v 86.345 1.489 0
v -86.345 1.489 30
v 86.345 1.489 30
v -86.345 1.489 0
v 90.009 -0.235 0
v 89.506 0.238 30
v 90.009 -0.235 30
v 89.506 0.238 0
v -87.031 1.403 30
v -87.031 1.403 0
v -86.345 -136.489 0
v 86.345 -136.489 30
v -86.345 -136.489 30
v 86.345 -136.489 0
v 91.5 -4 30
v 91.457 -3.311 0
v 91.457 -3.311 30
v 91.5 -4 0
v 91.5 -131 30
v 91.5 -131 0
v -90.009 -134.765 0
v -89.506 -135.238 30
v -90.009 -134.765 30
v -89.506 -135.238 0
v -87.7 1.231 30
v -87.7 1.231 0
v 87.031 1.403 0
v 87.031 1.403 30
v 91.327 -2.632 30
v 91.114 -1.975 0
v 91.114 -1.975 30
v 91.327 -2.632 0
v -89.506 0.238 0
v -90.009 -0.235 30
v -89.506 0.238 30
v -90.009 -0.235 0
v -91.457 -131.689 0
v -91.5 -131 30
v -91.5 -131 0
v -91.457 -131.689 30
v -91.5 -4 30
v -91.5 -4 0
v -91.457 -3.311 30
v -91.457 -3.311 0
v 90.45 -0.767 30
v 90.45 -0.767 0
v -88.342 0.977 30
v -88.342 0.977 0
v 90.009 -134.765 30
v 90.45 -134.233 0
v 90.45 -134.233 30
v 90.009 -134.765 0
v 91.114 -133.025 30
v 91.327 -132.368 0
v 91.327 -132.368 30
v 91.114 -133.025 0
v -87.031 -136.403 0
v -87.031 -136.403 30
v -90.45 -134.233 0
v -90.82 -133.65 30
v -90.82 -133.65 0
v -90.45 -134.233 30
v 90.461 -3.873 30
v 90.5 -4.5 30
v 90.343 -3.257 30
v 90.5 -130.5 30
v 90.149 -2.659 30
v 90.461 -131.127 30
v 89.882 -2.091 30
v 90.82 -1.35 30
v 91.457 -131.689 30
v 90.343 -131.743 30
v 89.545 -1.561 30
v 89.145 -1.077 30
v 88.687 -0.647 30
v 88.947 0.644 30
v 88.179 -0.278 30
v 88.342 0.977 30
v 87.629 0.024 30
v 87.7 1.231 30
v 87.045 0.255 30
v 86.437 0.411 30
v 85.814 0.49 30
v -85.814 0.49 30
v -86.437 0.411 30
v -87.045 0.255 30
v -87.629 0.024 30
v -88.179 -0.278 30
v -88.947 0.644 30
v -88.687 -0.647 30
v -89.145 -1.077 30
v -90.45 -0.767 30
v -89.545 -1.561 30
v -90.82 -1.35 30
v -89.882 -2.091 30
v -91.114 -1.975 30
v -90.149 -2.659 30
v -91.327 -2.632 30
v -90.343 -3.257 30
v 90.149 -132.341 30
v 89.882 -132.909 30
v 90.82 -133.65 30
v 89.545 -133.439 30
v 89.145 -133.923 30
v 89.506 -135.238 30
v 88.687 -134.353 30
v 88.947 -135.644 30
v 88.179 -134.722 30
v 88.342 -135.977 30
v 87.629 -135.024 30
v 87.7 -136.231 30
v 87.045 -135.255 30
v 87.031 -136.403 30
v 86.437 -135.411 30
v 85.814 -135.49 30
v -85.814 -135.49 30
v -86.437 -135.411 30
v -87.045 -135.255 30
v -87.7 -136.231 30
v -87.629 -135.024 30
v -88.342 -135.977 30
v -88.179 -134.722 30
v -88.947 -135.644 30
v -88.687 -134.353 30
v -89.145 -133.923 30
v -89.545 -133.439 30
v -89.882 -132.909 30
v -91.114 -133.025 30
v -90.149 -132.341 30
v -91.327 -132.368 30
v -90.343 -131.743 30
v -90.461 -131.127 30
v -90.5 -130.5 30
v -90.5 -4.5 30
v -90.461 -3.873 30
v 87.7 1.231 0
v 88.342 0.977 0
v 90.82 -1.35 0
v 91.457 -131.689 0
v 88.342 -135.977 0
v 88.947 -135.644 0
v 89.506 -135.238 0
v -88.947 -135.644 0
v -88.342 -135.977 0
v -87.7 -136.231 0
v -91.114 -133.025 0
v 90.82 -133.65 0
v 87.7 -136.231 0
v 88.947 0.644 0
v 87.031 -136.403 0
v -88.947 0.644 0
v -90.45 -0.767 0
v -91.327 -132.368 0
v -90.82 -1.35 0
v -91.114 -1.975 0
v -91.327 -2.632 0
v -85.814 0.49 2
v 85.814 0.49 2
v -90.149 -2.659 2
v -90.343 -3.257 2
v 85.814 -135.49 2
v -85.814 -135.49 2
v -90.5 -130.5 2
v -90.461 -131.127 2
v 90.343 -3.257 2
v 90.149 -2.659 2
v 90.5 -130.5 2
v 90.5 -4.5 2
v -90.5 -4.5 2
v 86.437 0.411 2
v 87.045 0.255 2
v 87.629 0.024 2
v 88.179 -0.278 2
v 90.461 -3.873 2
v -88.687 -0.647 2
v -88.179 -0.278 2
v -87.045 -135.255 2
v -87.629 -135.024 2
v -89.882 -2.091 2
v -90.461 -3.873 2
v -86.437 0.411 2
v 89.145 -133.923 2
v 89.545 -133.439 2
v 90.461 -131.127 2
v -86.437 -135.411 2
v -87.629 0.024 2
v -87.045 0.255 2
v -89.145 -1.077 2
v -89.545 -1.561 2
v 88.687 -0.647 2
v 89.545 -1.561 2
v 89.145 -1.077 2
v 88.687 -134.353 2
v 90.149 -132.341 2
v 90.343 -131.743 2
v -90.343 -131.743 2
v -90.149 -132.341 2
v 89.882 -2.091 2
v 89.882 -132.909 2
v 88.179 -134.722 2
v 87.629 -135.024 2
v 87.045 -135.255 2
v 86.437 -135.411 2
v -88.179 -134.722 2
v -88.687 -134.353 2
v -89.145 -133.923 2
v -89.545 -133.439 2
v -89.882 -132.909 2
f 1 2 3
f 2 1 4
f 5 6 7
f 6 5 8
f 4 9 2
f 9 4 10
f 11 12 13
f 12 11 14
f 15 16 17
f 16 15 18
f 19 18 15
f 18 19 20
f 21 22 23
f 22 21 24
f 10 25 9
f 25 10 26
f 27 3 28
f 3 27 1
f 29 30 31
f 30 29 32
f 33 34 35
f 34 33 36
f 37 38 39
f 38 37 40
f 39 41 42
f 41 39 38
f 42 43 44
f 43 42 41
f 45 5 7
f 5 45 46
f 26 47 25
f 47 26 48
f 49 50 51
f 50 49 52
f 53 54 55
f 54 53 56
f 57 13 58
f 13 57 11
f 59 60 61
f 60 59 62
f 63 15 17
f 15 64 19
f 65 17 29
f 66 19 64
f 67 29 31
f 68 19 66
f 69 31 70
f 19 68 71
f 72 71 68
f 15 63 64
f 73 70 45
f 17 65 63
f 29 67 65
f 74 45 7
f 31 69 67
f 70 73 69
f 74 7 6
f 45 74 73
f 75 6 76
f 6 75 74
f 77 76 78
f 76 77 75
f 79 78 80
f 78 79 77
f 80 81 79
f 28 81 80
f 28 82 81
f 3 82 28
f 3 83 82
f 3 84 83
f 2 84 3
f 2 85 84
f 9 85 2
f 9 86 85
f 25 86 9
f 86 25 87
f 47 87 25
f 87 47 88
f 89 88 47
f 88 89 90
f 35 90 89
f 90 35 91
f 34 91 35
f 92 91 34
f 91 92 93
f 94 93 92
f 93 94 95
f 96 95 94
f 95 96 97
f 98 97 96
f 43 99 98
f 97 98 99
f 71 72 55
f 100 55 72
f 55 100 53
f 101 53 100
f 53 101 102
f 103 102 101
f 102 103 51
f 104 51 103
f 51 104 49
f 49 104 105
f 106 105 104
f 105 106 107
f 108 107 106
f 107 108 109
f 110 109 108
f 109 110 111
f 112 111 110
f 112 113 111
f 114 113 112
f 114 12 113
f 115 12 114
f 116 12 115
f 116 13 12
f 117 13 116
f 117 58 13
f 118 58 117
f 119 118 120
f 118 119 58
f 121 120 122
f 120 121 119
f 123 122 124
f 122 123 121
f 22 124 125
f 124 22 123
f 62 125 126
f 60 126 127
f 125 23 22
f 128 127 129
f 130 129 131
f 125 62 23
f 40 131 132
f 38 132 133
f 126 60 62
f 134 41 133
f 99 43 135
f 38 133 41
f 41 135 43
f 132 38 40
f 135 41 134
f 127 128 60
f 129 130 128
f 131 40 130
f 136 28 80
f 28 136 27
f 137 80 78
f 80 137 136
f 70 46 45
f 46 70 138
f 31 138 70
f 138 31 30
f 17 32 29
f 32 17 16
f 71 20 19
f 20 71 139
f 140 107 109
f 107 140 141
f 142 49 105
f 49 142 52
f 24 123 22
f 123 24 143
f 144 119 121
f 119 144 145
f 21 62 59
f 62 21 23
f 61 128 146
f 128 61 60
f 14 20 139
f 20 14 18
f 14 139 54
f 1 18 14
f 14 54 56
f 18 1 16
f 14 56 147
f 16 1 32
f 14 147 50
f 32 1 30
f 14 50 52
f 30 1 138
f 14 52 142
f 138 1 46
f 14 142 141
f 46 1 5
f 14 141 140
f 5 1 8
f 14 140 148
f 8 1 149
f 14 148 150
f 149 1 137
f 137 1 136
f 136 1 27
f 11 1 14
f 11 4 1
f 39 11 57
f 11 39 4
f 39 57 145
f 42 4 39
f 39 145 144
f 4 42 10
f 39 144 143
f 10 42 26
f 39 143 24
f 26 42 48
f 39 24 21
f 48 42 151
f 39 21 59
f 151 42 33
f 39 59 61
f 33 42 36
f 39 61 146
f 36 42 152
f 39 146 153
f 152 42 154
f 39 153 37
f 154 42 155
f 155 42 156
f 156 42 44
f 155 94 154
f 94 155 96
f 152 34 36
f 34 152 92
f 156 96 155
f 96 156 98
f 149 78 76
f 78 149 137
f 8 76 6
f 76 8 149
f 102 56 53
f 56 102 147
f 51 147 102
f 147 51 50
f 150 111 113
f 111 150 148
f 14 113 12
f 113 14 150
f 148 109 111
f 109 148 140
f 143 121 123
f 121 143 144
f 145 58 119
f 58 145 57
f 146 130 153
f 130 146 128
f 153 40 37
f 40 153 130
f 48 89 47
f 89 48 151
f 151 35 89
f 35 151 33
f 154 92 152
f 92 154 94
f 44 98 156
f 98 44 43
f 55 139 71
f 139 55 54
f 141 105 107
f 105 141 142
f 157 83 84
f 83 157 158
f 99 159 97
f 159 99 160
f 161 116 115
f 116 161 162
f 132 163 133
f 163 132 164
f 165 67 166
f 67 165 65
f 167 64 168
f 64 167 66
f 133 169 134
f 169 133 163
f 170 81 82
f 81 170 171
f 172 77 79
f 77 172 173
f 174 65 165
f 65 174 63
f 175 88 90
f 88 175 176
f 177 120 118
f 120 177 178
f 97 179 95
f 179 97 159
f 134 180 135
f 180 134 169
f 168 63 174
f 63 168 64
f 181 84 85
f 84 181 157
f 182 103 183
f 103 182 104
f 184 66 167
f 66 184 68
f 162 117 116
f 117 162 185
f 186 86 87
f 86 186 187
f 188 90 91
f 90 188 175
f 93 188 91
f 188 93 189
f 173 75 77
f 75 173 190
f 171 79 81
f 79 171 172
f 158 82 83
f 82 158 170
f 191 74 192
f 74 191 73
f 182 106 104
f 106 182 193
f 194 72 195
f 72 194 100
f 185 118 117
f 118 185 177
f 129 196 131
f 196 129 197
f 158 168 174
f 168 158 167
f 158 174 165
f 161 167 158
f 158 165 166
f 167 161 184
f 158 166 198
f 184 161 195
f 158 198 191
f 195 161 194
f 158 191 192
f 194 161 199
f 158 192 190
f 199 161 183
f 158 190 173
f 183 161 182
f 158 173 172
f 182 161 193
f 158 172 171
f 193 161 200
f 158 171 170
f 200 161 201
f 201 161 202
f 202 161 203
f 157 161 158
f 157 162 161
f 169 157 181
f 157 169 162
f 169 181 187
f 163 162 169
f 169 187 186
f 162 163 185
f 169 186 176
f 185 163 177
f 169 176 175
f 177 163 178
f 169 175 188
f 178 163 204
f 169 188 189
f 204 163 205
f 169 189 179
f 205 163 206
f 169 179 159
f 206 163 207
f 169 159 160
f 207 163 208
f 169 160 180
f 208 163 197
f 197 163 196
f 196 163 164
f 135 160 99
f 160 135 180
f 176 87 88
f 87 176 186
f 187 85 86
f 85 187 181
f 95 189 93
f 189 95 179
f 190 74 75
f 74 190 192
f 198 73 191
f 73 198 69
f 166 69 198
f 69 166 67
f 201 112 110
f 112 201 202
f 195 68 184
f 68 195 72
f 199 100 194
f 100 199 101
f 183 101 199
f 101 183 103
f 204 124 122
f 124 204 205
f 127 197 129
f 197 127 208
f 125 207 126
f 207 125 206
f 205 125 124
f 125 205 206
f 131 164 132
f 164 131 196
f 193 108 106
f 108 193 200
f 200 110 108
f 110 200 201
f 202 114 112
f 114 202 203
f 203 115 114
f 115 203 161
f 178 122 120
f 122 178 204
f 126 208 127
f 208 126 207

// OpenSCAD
$fn = 50;


difference() {
	union() {
		translate(v = [0, -67.5000000000, 0]) {
			hull() {
				translate(v = [-86.0000000000, 63.5000000000, 0]) {
					cylinder(h = 30, r = 5.5000000000);
				}
				translate(v = [86.0000000000, 63.5000000000, 0]) {
					cylinder(h = 30, r = 5.5000000000);
				}
				translate(v = [-86.0000000000, -63.5000000000, 0]) {
					cylinder(h = 30, r = 5.5000000000);
				}
				translate(v = [86.0000000000, -63.5000000000, 0]) {
					cylinder(h = 30, r = 5.5000000000);
				}
			}
		}
	}
	union() {
		translate(v = [0, -67.5000000000, 2]) {
			hull() {
				translate(v = [-85.5000000000, 63.0000000000, 0]) {
					cylinder(h = 60, r = 5);
				}
				translate(v = [85.5000000000, 63.0000000000, 0]) {
					cylinder(h = 60, r = 5);
				}
				translate(v = [-85.5000000000, -63.0000000000, 0]) {
					cylinder(h = 60, r = 5);
				}
				translate(v = [85.5000000000, -63.0000000000, 0]) {
					cylinder(h = 60, r = 5);
				}
			}
		}
	}
}
